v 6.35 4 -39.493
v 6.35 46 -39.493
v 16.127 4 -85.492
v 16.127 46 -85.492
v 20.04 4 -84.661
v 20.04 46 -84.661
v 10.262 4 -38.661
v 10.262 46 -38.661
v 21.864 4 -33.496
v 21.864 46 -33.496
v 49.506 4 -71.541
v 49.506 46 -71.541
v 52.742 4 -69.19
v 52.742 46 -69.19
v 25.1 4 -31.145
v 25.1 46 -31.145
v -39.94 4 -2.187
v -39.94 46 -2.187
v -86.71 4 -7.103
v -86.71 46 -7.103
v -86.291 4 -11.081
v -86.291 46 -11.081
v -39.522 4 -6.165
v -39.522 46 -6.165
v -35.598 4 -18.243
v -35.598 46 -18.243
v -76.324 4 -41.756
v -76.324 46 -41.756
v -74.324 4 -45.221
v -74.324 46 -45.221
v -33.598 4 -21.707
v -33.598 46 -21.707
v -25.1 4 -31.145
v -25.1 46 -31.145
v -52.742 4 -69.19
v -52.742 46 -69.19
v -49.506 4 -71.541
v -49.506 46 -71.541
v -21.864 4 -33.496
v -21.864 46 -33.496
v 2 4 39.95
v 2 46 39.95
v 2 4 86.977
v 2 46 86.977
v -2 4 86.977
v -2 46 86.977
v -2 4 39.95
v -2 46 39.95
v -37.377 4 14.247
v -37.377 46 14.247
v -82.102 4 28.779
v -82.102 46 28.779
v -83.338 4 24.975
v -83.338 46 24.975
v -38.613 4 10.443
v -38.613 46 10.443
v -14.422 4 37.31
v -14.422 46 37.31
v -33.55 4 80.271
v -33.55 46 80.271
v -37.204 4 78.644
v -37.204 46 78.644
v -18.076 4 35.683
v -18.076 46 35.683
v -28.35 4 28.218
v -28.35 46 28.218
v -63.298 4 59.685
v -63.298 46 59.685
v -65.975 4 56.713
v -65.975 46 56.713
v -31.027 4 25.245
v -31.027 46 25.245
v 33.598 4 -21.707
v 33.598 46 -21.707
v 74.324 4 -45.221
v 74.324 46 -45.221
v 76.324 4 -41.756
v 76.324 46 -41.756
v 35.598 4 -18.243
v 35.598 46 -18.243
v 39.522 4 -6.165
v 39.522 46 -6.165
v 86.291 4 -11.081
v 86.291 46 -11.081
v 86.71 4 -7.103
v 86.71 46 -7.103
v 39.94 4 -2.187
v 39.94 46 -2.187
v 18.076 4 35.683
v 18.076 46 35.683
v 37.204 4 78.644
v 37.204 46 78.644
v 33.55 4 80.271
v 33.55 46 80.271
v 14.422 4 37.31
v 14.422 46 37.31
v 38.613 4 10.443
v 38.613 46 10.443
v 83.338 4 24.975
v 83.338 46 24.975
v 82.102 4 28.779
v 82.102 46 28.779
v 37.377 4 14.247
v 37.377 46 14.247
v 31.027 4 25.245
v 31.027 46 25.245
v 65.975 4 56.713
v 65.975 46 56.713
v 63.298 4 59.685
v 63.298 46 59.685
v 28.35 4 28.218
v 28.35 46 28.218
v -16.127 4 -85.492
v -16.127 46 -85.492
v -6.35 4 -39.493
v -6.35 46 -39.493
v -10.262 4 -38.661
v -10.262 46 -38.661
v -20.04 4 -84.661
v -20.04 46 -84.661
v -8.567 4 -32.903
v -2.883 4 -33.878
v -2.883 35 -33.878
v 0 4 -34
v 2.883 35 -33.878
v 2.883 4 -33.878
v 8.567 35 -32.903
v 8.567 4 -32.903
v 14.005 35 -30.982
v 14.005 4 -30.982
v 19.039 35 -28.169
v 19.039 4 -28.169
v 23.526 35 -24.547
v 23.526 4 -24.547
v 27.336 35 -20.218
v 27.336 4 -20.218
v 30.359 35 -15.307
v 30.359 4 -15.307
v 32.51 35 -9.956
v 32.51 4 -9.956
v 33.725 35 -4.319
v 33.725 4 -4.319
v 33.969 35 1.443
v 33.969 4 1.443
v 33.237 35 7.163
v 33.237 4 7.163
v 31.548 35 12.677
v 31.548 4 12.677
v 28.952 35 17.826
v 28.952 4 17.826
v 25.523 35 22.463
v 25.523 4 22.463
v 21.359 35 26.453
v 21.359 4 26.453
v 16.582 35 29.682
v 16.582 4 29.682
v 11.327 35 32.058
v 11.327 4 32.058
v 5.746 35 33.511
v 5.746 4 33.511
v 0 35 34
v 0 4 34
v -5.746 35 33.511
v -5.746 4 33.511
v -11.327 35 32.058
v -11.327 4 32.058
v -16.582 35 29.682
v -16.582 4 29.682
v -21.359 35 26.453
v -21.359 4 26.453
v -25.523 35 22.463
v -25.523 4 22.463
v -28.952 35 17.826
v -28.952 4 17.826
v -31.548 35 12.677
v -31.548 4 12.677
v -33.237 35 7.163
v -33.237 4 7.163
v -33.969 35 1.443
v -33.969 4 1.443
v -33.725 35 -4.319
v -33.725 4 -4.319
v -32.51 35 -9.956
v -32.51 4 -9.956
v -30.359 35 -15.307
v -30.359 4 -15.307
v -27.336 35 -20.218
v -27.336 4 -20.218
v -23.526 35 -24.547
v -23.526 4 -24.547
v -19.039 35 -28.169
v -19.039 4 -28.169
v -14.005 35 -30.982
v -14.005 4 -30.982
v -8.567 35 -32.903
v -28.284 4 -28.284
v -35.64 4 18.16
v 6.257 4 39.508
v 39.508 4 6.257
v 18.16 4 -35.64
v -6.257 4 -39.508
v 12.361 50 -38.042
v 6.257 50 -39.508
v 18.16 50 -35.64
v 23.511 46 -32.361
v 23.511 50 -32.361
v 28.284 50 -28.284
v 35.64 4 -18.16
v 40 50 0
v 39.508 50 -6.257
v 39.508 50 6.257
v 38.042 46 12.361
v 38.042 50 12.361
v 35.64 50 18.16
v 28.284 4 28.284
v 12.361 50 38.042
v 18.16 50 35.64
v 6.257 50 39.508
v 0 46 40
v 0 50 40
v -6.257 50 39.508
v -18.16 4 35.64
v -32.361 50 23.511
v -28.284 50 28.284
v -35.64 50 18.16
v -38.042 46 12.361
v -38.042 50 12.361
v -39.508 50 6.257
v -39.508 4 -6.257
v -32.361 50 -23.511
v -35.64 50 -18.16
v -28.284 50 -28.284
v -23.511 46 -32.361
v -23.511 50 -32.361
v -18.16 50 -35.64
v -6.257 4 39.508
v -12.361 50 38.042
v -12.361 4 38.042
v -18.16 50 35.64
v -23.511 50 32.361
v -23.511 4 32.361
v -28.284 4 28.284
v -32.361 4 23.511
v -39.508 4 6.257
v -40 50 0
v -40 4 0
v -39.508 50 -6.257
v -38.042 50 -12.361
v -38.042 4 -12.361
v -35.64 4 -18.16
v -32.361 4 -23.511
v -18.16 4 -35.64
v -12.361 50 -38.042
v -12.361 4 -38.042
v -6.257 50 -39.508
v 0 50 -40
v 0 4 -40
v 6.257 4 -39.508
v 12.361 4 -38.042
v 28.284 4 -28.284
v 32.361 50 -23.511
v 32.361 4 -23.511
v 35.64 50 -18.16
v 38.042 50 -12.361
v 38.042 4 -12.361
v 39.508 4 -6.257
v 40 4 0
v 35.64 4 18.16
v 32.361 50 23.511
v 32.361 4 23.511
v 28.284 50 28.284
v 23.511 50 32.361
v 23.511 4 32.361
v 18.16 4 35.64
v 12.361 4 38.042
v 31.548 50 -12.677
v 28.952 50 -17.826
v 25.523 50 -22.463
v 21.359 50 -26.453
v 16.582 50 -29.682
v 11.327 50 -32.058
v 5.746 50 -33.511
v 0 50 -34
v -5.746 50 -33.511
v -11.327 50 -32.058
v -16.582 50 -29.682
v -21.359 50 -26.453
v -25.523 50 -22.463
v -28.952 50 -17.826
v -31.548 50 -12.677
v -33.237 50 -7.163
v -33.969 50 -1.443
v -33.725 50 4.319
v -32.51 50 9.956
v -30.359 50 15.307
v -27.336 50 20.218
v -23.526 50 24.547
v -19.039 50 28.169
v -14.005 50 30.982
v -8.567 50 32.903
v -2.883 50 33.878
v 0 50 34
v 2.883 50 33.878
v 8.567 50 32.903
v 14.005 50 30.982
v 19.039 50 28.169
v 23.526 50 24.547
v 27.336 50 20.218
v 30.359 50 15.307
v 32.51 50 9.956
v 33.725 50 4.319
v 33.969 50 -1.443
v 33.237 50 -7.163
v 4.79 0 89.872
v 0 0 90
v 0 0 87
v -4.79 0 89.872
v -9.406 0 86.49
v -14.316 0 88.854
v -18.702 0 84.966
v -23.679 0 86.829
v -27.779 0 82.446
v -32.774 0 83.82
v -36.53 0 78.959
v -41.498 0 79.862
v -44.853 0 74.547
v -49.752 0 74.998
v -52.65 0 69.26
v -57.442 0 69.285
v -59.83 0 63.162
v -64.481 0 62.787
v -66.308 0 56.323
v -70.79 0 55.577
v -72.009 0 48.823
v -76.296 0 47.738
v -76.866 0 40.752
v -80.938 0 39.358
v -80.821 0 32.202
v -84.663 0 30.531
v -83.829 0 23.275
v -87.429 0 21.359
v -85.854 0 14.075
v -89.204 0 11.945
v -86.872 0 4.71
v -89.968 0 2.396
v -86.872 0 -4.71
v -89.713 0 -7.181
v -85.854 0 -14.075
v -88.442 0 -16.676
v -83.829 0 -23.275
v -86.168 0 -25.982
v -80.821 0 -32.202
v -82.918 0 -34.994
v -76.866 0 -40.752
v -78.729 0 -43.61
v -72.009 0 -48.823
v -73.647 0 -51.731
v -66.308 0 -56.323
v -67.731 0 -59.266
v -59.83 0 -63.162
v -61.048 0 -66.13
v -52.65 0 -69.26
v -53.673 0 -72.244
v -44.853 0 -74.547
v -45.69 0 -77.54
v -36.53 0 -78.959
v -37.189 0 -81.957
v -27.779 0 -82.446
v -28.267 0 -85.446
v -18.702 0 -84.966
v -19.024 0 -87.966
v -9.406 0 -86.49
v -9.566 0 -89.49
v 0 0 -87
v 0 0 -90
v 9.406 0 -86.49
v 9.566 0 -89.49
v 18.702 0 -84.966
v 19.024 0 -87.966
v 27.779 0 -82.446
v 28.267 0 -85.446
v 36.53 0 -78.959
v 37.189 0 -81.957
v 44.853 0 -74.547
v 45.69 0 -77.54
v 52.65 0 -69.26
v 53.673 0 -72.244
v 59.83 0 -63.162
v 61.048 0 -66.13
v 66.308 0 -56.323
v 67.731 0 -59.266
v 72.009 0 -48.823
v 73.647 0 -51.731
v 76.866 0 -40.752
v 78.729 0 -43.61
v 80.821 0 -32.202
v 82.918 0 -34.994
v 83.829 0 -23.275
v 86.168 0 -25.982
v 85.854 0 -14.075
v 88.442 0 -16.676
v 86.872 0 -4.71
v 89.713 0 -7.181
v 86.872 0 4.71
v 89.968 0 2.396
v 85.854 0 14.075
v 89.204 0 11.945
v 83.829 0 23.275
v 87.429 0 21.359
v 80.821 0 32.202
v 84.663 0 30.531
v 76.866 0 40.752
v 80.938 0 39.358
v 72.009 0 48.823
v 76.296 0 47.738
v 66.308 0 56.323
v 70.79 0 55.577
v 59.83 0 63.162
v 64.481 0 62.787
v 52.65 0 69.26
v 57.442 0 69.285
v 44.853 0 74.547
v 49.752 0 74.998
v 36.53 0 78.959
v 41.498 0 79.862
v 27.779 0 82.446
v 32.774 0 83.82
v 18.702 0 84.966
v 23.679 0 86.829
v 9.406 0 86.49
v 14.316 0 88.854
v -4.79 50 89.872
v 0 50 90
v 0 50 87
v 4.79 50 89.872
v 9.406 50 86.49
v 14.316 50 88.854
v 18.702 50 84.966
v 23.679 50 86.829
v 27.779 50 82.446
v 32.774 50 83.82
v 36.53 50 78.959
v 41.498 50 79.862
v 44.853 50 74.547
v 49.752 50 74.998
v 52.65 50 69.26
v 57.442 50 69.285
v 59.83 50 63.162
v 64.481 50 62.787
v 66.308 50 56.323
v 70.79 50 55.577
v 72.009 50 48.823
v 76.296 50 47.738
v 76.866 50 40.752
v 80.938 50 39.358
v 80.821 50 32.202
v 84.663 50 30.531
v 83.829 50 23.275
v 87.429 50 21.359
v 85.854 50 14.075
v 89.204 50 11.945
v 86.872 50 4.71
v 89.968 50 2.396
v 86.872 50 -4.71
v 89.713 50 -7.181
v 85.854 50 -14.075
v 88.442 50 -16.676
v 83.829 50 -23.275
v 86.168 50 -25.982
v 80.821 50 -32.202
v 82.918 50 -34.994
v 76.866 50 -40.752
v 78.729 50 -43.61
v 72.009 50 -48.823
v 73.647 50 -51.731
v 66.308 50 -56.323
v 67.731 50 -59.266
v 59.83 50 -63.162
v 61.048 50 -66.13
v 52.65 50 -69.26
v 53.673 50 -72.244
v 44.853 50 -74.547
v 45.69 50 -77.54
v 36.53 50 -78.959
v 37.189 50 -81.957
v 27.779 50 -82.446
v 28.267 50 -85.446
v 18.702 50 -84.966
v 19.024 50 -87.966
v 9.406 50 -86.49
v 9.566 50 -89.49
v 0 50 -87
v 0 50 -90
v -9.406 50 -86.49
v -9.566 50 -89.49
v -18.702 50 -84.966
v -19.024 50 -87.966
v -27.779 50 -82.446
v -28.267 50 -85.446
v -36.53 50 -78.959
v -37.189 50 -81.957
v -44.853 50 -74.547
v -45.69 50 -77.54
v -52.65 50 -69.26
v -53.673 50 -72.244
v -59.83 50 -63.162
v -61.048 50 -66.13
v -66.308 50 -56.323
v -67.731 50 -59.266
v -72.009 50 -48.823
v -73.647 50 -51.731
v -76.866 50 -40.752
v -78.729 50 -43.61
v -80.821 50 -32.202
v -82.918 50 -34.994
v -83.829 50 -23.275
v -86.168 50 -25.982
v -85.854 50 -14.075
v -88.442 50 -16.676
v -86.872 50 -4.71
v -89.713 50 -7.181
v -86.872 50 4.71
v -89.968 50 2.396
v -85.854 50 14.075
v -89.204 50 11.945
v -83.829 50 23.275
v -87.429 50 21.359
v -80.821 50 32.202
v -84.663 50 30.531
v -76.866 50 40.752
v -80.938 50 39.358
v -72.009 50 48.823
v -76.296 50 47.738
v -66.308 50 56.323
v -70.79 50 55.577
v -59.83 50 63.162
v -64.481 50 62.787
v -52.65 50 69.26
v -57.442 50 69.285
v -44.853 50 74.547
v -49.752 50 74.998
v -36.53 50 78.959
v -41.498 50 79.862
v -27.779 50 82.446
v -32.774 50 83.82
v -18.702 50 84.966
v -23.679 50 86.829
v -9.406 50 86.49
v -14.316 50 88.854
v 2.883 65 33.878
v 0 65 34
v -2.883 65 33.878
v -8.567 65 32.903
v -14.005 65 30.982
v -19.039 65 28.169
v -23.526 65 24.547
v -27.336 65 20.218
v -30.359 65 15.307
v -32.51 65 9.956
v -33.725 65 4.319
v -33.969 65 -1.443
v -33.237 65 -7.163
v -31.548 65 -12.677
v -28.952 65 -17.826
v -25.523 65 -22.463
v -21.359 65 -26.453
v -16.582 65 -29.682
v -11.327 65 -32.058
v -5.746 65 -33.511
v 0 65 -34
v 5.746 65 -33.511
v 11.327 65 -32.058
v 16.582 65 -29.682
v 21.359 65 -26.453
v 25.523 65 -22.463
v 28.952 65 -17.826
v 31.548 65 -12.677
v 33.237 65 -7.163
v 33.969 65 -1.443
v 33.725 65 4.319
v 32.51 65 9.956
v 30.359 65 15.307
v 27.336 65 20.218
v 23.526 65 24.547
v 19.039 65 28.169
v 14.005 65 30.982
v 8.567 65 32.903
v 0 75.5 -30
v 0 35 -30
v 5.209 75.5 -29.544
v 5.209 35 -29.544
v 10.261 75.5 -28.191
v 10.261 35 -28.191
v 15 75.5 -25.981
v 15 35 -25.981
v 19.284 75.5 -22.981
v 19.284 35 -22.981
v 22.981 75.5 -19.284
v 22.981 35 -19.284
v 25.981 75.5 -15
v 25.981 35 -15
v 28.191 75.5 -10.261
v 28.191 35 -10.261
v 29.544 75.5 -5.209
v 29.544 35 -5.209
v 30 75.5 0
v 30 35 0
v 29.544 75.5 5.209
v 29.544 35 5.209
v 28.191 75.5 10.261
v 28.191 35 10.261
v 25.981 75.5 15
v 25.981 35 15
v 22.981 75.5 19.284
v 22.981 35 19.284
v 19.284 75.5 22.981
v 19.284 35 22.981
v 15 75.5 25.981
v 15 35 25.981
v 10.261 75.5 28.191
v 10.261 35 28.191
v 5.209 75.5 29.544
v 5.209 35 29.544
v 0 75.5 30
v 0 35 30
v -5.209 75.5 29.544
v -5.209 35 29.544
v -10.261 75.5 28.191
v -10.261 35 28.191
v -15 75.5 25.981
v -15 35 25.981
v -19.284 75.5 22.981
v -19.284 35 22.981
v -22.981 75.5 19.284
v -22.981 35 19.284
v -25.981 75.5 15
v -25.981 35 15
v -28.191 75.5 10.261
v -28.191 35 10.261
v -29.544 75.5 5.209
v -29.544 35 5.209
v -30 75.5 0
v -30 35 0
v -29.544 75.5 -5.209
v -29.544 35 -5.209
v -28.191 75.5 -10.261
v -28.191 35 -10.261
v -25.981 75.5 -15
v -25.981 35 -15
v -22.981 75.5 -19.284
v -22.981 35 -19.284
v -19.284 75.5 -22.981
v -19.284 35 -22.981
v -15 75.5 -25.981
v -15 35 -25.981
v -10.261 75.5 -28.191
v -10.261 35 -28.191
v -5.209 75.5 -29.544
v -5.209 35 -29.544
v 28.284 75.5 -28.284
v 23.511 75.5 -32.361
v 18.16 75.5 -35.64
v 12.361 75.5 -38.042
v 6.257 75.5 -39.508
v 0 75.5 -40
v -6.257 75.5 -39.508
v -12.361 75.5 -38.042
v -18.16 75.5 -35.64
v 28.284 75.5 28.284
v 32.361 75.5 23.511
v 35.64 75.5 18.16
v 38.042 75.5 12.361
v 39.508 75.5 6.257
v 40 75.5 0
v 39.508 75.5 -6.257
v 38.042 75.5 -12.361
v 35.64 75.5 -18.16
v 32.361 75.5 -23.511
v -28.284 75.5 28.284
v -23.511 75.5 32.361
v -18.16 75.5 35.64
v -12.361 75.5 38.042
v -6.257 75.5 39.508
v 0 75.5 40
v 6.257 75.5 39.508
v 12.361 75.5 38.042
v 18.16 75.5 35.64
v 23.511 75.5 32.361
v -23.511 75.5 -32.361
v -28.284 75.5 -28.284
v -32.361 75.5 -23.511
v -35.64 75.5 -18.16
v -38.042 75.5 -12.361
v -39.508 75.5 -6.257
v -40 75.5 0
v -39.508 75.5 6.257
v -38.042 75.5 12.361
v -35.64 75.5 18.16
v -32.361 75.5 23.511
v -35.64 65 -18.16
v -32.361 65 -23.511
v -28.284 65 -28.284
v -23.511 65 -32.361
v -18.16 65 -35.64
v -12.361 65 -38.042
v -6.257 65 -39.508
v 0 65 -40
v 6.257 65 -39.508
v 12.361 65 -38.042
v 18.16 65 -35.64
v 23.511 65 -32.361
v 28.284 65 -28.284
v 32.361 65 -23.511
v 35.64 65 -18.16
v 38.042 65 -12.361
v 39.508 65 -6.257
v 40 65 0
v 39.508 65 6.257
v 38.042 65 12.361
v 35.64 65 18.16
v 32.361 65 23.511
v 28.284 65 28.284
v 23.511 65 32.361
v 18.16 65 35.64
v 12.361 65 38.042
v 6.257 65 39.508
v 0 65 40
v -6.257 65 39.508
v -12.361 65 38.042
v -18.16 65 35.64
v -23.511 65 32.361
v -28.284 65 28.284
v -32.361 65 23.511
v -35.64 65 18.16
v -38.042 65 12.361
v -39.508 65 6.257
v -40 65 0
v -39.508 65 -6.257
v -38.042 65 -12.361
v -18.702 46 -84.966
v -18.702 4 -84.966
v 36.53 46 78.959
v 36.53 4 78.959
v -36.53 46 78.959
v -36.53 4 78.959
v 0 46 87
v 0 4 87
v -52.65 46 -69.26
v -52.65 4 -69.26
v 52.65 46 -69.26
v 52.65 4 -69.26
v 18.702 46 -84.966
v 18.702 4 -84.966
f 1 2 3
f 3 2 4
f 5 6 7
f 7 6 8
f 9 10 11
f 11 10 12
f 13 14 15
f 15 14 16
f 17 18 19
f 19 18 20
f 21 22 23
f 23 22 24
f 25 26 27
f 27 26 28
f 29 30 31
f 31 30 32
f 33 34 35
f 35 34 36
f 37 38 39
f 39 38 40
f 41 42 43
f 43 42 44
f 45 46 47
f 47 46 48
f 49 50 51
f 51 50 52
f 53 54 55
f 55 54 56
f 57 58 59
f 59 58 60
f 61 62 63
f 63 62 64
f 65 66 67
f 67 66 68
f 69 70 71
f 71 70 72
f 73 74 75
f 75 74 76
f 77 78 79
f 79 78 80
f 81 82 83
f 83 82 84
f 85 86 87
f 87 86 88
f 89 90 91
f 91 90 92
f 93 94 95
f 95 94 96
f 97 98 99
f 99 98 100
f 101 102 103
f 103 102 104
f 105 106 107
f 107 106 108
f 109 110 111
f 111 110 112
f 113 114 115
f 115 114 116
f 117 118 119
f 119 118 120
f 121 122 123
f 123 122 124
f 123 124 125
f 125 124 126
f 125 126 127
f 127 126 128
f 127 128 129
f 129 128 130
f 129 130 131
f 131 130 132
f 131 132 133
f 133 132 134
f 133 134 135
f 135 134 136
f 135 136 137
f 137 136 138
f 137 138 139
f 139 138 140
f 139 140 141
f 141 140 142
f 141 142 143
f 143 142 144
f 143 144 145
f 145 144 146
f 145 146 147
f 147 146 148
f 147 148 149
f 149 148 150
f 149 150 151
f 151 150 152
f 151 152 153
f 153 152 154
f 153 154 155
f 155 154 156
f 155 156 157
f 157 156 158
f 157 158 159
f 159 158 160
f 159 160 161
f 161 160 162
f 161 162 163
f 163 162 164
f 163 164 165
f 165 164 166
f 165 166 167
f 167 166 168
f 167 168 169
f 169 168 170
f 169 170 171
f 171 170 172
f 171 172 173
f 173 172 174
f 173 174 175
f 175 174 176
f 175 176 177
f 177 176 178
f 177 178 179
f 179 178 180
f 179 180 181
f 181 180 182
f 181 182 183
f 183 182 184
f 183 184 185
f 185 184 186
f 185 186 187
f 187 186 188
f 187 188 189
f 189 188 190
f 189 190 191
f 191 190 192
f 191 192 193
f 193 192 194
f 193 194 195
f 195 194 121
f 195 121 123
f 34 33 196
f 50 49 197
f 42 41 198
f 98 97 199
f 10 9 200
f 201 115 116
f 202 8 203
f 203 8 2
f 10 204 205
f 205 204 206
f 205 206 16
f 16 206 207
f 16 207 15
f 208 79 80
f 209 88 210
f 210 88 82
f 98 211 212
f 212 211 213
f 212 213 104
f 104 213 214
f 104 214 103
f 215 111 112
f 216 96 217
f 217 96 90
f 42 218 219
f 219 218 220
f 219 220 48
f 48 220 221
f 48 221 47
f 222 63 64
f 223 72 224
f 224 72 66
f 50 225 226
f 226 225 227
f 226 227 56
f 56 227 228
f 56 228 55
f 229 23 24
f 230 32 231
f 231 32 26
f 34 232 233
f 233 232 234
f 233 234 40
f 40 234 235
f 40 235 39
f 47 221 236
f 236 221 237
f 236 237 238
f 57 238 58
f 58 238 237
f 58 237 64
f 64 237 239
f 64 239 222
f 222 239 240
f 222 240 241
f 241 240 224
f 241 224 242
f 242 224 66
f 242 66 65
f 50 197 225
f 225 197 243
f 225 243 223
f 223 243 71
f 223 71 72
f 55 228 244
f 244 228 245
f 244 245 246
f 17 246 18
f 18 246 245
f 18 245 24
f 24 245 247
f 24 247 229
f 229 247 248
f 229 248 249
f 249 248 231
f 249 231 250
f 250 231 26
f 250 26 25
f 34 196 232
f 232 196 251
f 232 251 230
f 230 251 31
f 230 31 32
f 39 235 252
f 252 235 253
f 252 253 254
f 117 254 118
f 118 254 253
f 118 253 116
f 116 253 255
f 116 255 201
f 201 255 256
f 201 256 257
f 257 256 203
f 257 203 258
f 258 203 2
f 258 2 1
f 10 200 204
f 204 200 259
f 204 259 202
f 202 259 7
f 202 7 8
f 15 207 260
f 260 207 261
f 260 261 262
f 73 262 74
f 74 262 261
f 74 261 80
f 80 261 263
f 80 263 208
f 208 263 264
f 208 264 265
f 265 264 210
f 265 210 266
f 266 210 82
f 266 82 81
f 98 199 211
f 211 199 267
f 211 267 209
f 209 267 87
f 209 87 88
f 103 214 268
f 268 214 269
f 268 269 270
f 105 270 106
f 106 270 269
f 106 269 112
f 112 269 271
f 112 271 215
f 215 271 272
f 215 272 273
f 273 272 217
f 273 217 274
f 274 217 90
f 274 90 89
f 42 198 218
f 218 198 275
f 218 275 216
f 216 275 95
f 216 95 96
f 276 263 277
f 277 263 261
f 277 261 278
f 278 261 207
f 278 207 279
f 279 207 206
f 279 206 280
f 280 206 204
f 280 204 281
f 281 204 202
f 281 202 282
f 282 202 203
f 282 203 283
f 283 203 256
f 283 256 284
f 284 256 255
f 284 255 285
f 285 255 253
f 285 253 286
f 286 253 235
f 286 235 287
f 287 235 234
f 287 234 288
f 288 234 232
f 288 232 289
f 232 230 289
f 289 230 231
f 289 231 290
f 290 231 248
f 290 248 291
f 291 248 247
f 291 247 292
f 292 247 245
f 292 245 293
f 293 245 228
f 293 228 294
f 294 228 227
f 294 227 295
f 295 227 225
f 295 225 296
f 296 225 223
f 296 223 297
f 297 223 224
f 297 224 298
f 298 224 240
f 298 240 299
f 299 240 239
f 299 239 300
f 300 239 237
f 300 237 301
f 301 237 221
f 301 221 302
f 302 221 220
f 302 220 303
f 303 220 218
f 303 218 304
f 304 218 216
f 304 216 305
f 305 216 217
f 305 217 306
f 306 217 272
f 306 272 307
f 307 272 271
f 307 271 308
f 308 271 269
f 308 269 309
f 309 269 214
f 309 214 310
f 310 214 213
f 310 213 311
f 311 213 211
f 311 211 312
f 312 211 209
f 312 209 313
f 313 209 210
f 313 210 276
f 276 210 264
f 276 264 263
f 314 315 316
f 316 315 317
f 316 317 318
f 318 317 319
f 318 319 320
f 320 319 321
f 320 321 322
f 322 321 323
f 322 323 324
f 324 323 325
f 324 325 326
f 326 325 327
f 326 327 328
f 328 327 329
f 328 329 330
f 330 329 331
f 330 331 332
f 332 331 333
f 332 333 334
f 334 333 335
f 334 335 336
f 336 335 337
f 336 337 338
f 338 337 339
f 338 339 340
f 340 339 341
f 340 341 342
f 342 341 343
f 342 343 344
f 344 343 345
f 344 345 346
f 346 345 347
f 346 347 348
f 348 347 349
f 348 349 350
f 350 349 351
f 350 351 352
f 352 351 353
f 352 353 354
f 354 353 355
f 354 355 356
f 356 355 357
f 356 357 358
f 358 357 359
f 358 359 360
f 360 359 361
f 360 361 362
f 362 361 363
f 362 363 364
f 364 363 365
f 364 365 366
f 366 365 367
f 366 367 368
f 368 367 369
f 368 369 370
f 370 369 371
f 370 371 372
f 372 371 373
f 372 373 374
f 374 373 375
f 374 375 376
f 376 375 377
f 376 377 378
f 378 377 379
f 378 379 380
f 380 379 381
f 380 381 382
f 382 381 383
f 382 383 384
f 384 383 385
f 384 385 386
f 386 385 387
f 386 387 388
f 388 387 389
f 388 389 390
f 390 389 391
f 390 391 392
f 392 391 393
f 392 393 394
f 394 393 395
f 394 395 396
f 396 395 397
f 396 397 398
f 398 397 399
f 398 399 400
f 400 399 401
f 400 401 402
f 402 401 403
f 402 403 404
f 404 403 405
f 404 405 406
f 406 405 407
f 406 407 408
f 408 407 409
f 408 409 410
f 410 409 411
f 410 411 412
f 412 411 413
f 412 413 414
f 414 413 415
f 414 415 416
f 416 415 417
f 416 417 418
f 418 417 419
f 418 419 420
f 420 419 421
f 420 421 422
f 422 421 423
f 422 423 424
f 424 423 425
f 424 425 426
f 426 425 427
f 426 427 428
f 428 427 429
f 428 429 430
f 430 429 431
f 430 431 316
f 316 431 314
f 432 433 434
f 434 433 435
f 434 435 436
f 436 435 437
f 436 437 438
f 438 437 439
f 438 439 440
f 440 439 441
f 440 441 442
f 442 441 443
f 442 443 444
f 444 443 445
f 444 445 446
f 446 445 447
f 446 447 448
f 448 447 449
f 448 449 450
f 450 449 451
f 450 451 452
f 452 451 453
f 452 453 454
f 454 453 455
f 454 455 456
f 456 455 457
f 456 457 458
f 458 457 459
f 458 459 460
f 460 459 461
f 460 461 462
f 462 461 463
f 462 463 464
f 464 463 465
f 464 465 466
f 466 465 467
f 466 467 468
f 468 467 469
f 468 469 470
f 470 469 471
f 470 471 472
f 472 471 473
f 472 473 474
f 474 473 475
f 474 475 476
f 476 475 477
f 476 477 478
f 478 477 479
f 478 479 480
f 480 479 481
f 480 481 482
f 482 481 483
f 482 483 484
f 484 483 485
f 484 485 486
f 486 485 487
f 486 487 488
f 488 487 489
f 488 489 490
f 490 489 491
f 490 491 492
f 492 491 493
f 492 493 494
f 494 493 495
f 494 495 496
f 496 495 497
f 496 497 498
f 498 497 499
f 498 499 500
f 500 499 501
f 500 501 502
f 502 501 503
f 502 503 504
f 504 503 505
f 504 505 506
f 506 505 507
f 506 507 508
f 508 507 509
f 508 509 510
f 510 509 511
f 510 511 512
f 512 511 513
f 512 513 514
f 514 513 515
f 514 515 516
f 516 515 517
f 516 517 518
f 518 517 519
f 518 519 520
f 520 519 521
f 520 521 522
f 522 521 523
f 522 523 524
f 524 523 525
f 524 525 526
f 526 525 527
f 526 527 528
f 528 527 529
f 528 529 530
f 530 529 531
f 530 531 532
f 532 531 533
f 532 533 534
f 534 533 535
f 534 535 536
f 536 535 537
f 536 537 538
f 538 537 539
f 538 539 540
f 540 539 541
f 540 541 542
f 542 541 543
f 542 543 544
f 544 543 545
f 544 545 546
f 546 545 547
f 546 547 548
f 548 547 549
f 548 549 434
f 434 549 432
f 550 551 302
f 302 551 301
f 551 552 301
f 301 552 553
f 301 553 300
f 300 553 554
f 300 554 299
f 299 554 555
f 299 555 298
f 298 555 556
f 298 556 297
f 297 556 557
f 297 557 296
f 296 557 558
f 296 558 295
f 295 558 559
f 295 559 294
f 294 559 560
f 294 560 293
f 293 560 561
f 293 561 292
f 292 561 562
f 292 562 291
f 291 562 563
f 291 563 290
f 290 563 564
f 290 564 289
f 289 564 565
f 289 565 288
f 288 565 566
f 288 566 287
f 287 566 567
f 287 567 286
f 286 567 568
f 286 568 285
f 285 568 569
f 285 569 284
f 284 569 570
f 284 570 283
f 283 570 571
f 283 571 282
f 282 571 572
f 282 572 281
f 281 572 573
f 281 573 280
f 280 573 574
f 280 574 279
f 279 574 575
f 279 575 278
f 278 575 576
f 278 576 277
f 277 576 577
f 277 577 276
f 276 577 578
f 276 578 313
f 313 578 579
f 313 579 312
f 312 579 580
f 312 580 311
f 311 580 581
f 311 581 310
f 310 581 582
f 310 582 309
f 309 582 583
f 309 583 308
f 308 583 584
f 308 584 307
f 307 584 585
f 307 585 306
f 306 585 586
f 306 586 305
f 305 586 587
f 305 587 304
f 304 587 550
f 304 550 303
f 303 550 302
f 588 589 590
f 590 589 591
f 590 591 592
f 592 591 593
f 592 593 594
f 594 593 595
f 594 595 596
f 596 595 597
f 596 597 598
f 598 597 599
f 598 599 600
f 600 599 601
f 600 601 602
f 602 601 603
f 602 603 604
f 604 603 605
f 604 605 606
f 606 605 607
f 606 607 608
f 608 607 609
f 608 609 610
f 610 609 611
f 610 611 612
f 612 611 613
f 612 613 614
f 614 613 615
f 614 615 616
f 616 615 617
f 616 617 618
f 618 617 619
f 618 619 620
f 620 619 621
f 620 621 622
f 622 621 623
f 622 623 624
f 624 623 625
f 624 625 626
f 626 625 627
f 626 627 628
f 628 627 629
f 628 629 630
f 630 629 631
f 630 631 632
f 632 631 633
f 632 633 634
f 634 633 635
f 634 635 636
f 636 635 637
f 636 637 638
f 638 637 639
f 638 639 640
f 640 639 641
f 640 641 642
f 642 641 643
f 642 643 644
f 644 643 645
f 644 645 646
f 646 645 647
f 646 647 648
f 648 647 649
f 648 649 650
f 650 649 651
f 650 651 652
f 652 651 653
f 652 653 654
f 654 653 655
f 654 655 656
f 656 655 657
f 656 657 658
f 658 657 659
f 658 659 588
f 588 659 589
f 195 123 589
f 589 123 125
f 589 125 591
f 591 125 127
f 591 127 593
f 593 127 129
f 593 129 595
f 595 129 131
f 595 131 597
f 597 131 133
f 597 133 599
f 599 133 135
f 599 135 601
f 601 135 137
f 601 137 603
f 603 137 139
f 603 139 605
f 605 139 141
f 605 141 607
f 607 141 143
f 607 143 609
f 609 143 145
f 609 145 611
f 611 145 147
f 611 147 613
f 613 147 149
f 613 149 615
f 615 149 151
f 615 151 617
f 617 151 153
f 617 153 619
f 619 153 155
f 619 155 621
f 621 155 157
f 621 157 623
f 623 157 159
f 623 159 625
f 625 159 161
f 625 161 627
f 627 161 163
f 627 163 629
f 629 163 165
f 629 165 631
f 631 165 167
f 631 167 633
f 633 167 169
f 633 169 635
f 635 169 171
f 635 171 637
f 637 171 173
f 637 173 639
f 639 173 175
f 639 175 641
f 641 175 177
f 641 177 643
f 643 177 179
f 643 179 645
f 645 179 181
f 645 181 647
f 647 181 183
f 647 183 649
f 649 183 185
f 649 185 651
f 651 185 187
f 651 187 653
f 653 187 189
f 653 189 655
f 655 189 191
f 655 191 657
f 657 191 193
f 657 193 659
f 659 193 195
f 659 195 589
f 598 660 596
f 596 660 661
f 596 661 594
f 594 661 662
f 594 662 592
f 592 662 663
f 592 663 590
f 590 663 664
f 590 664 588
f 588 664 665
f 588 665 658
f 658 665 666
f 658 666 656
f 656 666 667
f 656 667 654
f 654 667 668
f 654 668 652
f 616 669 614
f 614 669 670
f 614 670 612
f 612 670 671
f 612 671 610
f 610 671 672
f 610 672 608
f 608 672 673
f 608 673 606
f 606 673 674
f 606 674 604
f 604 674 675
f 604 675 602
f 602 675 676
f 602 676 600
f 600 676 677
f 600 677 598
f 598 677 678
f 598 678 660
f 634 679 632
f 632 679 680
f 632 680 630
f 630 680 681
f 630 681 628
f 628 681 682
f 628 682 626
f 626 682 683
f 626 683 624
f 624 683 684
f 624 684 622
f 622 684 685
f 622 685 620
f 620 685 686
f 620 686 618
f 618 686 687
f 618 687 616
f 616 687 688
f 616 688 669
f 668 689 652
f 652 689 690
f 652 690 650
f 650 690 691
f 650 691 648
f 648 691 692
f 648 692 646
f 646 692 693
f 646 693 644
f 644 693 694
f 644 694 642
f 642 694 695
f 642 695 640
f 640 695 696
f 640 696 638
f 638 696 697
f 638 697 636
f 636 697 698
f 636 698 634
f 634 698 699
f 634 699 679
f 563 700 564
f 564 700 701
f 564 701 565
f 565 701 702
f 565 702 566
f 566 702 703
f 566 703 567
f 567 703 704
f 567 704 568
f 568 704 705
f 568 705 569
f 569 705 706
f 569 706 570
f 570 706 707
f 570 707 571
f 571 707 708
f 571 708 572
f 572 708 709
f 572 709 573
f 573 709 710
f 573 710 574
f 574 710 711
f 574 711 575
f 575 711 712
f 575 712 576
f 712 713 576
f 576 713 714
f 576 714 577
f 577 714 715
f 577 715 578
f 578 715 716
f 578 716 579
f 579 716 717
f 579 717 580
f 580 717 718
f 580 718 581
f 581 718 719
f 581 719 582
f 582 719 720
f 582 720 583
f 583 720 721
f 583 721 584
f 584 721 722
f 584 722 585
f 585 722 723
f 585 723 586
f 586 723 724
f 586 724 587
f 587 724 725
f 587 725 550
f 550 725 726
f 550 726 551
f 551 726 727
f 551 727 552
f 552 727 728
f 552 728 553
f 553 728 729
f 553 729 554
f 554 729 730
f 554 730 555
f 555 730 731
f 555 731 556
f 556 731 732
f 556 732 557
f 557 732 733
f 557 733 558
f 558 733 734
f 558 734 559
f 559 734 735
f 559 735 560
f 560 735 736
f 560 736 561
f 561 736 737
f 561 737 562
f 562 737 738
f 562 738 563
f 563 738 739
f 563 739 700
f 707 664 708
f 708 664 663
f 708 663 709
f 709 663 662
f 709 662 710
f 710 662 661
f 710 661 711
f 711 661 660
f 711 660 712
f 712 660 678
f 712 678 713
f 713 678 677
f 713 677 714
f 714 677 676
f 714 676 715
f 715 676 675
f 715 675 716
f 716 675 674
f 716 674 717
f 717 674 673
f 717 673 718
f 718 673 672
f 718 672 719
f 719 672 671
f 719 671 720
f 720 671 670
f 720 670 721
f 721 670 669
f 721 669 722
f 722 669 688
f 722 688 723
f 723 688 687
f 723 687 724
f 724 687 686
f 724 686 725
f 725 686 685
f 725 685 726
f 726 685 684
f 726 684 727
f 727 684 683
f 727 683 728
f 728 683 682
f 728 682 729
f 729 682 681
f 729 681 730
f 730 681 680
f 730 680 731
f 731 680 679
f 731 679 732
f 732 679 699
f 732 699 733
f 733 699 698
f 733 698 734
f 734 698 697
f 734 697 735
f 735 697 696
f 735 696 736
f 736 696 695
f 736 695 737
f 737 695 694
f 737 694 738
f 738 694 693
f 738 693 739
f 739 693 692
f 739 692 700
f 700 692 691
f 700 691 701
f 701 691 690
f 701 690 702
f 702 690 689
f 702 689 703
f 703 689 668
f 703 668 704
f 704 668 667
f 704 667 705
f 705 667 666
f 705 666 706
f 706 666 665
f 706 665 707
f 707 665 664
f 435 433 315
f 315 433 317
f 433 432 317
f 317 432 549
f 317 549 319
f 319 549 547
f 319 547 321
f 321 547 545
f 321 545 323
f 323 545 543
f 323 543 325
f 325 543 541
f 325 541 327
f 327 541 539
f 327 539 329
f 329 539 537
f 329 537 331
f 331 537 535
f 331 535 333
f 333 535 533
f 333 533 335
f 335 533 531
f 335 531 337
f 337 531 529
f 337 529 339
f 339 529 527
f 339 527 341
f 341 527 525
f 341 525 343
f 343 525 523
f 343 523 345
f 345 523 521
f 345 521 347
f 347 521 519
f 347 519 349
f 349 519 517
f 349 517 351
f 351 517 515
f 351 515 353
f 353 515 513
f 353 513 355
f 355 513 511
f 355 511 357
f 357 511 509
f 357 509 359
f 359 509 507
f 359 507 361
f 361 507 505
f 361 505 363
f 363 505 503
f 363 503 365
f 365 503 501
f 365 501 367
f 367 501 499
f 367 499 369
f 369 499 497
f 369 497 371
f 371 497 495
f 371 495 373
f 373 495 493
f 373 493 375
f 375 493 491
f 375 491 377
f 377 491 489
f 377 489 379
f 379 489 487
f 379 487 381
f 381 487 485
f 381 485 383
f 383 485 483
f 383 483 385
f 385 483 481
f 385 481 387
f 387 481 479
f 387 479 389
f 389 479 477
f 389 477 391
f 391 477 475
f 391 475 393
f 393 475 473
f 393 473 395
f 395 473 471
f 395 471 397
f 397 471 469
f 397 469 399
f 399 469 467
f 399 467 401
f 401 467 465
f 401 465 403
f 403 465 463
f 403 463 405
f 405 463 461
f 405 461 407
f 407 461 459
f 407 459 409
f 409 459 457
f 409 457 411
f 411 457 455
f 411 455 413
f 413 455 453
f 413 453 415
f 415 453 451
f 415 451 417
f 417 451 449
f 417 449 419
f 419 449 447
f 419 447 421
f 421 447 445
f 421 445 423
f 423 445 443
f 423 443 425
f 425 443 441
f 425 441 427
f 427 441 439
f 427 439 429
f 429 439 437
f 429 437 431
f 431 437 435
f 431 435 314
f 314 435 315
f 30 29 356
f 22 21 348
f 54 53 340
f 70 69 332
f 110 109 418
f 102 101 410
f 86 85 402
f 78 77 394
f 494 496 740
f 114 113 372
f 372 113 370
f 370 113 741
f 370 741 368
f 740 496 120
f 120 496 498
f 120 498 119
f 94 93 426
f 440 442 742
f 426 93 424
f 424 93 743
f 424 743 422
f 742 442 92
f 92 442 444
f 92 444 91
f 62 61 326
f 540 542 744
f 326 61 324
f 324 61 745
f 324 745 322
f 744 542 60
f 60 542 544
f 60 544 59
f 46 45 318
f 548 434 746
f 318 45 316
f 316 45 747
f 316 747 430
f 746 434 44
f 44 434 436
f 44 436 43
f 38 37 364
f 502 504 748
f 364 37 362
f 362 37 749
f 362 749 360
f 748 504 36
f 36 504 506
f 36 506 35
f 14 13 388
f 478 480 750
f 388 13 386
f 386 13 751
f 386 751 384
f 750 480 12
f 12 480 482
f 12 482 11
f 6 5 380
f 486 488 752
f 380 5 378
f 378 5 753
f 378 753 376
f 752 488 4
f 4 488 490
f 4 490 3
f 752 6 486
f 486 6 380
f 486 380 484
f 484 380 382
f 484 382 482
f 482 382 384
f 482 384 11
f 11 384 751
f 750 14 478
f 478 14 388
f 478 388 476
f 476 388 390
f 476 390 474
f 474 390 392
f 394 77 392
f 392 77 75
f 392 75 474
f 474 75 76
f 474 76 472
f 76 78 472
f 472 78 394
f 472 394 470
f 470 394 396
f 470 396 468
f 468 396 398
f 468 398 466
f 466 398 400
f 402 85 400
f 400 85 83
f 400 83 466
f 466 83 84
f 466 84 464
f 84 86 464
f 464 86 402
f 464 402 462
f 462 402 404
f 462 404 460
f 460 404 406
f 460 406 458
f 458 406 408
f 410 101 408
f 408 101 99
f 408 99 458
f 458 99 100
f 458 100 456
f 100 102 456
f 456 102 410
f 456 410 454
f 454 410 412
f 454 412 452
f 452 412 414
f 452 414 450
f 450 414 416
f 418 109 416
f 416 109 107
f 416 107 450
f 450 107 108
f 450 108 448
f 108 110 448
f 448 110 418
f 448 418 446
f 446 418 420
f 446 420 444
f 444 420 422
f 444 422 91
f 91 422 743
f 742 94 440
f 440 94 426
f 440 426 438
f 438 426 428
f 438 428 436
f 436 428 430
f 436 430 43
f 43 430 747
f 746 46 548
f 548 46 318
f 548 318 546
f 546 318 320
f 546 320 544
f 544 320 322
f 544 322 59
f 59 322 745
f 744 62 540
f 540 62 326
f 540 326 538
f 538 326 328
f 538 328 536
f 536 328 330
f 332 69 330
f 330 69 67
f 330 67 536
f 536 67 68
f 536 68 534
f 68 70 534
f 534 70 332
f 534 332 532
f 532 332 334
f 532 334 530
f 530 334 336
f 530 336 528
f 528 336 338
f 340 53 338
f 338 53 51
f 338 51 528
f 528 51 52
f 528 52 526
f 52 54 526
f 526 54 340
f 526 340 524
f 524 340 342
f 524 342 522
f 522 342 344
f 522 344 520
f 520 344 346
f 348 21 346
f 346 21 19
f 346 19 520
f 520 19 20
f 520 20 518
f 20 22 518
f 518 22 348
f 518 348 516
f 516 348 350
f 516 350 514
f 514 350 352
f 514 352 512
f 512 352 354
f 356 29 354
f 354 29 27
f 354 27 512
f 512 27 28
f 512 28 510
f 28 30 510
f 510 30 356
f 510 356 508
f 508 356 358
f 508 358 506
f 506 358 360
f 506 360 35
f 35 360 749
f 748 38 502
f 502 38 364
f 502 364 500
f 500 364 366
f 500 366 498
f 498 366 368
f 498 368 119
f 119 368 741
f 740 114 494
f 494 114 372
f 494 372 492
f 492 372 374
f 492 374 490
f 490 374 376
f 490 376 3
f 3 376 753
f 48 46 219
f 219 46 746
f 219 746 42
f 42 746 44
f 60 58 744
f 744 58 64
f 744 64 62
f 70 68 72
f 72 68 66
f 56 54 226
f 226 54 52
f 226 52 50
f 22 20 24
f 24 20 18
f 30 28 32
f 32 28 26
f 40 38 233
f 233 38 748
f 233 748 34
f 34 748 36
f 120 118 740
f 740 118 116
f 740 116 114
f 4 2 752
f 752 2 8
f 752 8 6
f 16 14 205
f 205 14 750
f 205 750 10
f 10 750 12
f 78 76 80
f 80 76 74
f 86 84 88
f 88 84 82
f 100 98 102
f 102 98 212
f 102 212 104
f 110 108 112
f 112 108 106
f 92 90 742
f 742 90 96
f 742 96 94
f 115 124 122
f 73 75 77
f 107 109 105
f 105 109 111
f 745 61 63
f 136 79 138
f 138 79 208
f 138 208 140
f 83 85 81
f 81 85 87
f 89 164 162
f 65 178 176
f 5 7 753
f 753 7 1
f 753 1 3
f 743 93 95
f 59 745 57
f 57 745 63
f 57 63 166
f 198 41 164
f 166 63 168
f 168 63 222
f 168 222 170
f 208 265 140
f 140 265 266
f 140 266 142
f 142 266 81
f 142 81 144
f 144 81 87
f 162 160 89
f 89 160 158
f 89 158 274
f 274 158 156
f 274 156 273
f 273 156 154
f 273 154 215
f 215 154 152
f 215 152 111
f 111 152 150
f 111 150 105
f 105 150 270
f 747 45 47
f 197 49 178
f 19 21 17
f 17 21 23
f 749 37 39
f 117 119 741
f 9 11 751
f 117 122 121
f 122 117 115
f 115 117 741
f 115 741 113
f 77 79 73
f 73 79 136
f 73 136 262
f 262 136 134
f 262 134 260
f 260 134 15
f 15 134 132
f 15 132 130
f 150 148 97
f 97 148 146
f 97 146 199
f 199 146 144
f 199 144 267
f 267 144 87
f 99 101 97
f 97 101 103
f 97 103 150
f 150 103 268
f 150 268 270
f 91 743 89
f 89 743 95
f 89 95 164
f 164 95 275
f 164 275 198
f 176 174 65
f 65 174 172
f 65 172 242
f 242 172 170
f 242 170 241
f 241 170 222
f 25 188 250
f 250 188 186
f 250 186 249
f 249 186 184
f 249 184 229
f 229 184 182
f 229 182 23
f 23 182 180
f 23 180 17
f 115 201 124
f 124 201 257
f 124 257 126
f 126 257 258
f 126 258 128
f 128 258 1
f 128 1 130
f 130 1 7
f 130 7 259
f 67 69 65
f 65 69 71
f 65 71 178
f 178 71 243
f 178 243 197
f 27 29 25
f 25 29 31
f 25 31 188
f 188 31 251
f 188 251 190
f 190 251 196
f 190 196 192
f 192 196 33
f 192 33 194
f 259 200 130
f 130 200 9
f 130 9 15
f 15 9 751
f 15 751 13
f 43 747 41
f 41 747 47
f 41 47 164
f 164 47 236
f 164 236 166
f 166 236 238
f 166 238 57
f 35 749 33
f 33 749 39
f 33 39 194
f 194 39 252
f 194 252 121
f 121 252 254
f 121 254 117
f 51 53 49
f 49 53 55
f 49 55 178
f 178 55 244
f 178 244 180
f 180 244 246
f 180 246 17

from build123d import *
from build123d.topology import SkipClean

# Parameters (mm, degrees)
SKETCH1_R                = 90
BOSS_EXTRUDE1_DEPTH      = 50
CUT_EXTRUDE1_DEPTH       = 50
SKETCH4_R                = 40
CUT_EXTRUDE2_DEPTH       = 137.546695512
SKETCH5_R                = 40
SKETCH5_R_2              = 34
BOSS_EXTRUDE2_DEPTH      = 50
BOSS_EXTRUDE3_DEPTH      = 15
BOSS_EXTRUDE3_DEPTH_BACK = 15
SKETCH9_R                = 34
SKETCH9_R_2              = 30
SKETCH10_R               = 40
SKETCH10_R_2             = 30
BOSS_EXTRUDE4_DEPTH      = 10.5
SKETCH11_R               = 90
SKETCH11_R_2             = 87
BOSS_EXTRUDE5_DEPTH      = 50
SKETCH12_R               = 87
SKETCH12_R_2             = 40
CUT_EXTRUDE3_DEPTH       = 4
SKETCH13_R               = 87
CUT_EXTRUDE4_DEPTH       = 4


with BuildPart() as part:
    # Sketch1 → Boss-Extrude1 (new body)
    with BuildSketch(Plane(origin=(0, 0, 0), x_dir=(1, 0, 0), z_dir=(0, 1, 0))):
        with Locations(Location((0, 0, 0), (0, 0, 270))):
            Circle(SKETCH1_R)
    extrude(amount=BOSS_EXTRUDE1_DEPTH)

    # Sketch2 → Cut-Extrude1 (cut)
    with BuildSketch(Plane.XZ):
        with BuildLine():
            Line((-2, 9.409260219), (-2, 89.977775034))
            ThreePointArc((-2, 89.977775034), (-18.712052174, 88.033284066), (-34.770167253, 83.012260957))
            Line((-34.770167253, 83.012260957), (-2, 9.409260219))
        make_face()
        with BuildLine():
            ThreePointArc((34.770167253, 83.012260957), (18.712052174, 88.033284066), (2, 89.977775034))
            Line((2, 89.977775034), (2, 9.409260219))
            Line((2, 9.409260219), (34.770167253, 83.012260957))
        make_face()
        with BuildLine():
            Line((-5.654181831, 7.782313647), (-38.424349084, 81.385314385))
            ThreePointArc((-38.424349084, 81.385314385), (-52.900672706, 72.811529494), (-65.528256711, 61.693172818))
            Line((-65.528256711, 61.693172818), (-5.654181831, 7.782313647))
        make_face()
        with BuildLine():
            ThreePointArc((65.528256711, 61.693172818), (52.900672706, 72.811529494), (38.424349084, 81.385314385))
            Line((38.424349084, 81.385314385), (5.654181831, 7.782313647))
            Line((5.654181831, 7.782313647), (65.528256711, 61.693172818))
        make_face()
        with BuildLine():
            Line((-8.330704256, 4.809734345), (-68.204779137, 58.720593516))
            ThreePointArc((-68.204779137, 58.720593516), (-77.942286341, 45), (-84.955915279, 29.706774634))
            Line((-84.955915279, 29.706774634), (-8.330704256, 4.809734345))
        make_face()
        with BuildLine():
            ThreePointArc((84.955915279, 29.706774634), (77.942286341, 45), (68.204779137, 58.720593516))
            Line((68.204779137, 58.720593516), (8.330704256, 4.809734345))
            Line((8.330704256, 4.809734345), (84.955915279, 29.706774634))
        make_face()
        with BuildLine():
            Line((-9.566772234, 1.00550828), (-86.191983256, 25.902548569))
            ThreePointArc((-86.191983256, 25.902548569), (-89.506970583, 9.407561694), (-89.693924294, -7.416194762))
            Line((-89.693924294, -7.416194762), (-9.566772234, 1.00550828))
        make_face()
        with BuildLine():
            ThreePointArc((89.693924294, -7.416194762), (89.506970583, 9.407561694), (86.191983256, 25.902548569))
            Line((86.191983256, 25.902548569), (9.566772234, 1.00550828))
            Line((9.566772234, 1.00550828), (89.693924294, -7.416194762))
        make_face()
        with BuildLine():
            Line((-9.14865838, -2.972579302), (-89.275810441, -11.394282343))
            ThreePointArc((-89.275810441, -11.394282343), (-85.595086467, -27.811529494), (-78.923038955, -43.256836709))
            Line((-78.923038955, -43.256836709), (-9.14865838, -2.972579302))
        make_face()
        with BuildLine():
            Line((89.275810441, -11.394282343), (9.14865838, -2.972579302))
            Line((9.14865838, -2.972579302), (78.923038955, -43.256836709))
            ThreePointArc((78.923038955, -43.256836709), (85.595086467, -27.811529494), (89.275810441, -11.394282343))
        make_face()
        with BuildLine():
            Line((-7.14865838, -6.436680917), (-76.923038955, -46.720938324))
            ThreePointArc((-76.923038955, -46.720938324), (-66.883034293, -60.221754572), (-54.505643188, -71.617978614))
            Line((-54.505643188, -71.617978614), (-7.14865838, -6.436680917))
        make_face()
        with BuildLine():
            Line((76.923038955, -46.720938324), (7.14865838, -6.436680917))
            Line((7.14865838, -6.436680917), (54.505643188, -71.617978614))
            ThreePointArc((54.505643188, -71.617978614), (66.883034293, -60.221754572), (76.923038955, -46.720938324))
        make_face()
        with BuildLine():
            Line((-3.912590403, -8.787821926), (-51.26957521, -73.969119623))
            ThreePointArc((-51.26957521, -73.969119623), (-36.606297877, -82.219091188), (-20.663726545, -87.595721387))
            Line((-20.663726545, -87.595721387), (-3.912590403, -8.787821926))
        make_face()
        with BuildLine():
            Line((51.26957521, -73.969119623), (3.912590403, -8.787821926))
            Line((3.912590403, -8.787821926), (20.663726545, -87.595721387))
            ThreePointArc((20.663726545, -87.595721387), (36.606297877, -82.219091188), (51.26957521, -73.969119623))
        make_face()
        with BuildLine():
            Line((0, -9.619468689), (-16.751136142, -88.42736815))
            ThreePointArc((-16.751136142, -88.42736815), (0, -90), (16.751136142, -88.42736815))
            Line((16.751136142, -88.42736815), (0, -9.619468689))
        make_face()
    extrude(amount=-CUT_EXTRUDE1_DEPTH, mode=Mode.SUBTRACT)

    # Sketch4 → Cut-Extrude2 (cut, through all)
    with BuildSketch(Plane(origin=(0, 50, 0), x_dir=(1, 0, 0), z_dir=(0, 1, 0))):
        Circle(SKETCH4_R)
    extrude(amount=-CUT_EXTRUDE2_DEPTH, mode=Mode.SUBTRACT)


with BuildPart() as cut_extrude2_piece_1:
    # of the separate pieces the step leaves, piece 1, a body of its own (cut_extrude2_pieces)
    add(part.part.solids().sort_by_distance((-84.955915279, 0, 29.706774634))[0])


with BuildPart() as cut_extrude2_piece_2:
    # of the separate pieces the step leaves, piece 2, a body of its own (cut_extrude2_pieces)
    add(part.part.solids().sort_by_distance((-65.528256711, 0, 61.693172818))[0])


with BuildPart() as cut_extrude2_piece_3:
    # of the separate pieces the step leaves, piece 3, a body of its own (cut_extrude2_pieces)
    add(part.part.solids().sort_by_distance((10.262360744, 0, -38.661142662))[0])


with BuildPart() as cut_extrude2_piece_4:
    # of the separate pieces the step leaves, piece 4, a body of its own (cut_extrude2_pieces)
    add(part.part.solids().sort_by_distance((14.422025249, 0, 37.309585735))[0])


with BuildPart() as cut_extrude2_piece_5:
    # of the separate pieces the step leaves, piece 5, a body of its own (cut_extrude2_pieces)
    add(part.part.solids().sort_by_distance((-2, 0, 89.977775034))[0])


with BuildPart() as cut_extrude2_piece_6:
    # of the separate pieces the step leaves, piece 6, a body of its own (cut_extrude2_pieces)
    add(part.part.solids().sort_by_distance((39.940175529, 0, -2.186865046))[0])


with BuildPart() as cut_extrude2_piece_7:
    # of the separate pieces the step leaves, piece 7, a body of its own (cut_extrude2_pieces)
    add(part.part.solids().sort_by_distance((25.100036427, 0, -31.144633107))[0])


with BuildPart() as cut_extrude2_piece_8:
    # of the separate pieces the step leaves, piece 8, a body of its own (cut_extrude2_pieces)
    add(part.part.solids().sort_by_distance((-34.770167253, 0, 83.012260957))[0])


with BuildPart() as cut_extrude2_piece_9:
    # of the separate pieces the step leaves, piece 9, a body of its own (cut_extrude2_pieces)
    add(part.part.solids().sort_by_distance((28.350351313, 0, 28.218036438))[0])


with BuildPart() as cut_extrude2_piece_10:
    # of the separate pieces the step leaves, piece 10, a body of its own (cut_extrude2_pieces)
    add(part.part.solids().sort_by_distance((-20.663726545, 0, -87.595721387))[0])


with BuildPart() as cut_extrude2_piece_11:
    # of the separate pieces the step leaves, piece 11, a body of its own (cut_extrude2_pieces)
    add(part.part.solids().sort_by_distance((-54.505643188, 0, -71.617978614))[0])


with BuildPart() as cut_extrude2_piece_12:
    # of the separate pieces the step leaves, piece 12, a body of its own (cut_extrude2_pieces)
    add(part.part.solids().sort_by_distance((37.37664408, 0, 14.247332289))[0])


with BuildPart() as cut_extrude2_piece_13:
    # of the separate pieces the step leaves, piece 13, a body of its own (cut_extrude2_pieces)
    add(part.part.solids().sort_by_distance((35.597687784, 0, -18.242933548))[0])


with BuildPart() as cut_extrude2_piece_14:
    # of the separate pieces the step leaves, piece 14, a body of its own (cut_extrude2_pieces)
    add(part.part.solids().sort_by_distance((-89.693924294, 0, -7.416194762))[0])


with BuildPart() as cut_extrude2_piece_15:
    # of the separate pieces the step leaves, piece 15, a body of its own (cut_extrude2_pieces)
    add(part.part.solids().sort_by_distance((-78.923038955, 0, -43.256836709))[0])


with BuildPart() as body_16:
    # Sketch5 → Boss-Extrude2 (new body)
    with BuildSketch(Plane(origin=(0, 50, 0), x_dir=(1, 0, 0), z_dir=(0, 1, 0))):
        with Locations(Location((0, 0, 0), (0, 0, 270))):
            Circle(SKETCH5_R)
        with Locations(Location((0, 0, 0), (0, 0, 270))):
            Circle(SKETCH5_R_2, mode=Mode.SUBTRACT)
    extrude(amount=-BOSS_EXTRUDE2_DEPTH)



with BuildPart() as body_17:
    # Sketch9 → Boss-Extrude3 (new, two sides: drawn at the far end of the back side and taken through both)
    with BuildSketch(Plane(origin=(0, 50, 0), x_dir=(1, 0, 0), z_dir=(0, 1, 0)).offset(-BOSS_EXTRUDE3_DEPTH_BACK)):
        with Locations(Location((0, 0, 0), (0, 0, 270))):
            Circle(SKETCH9_R)
        with Locations(Location((0, 0, 0), (0, 0, 270))):
            Circle(SKETCH9_R_2, mode=Mode.SUBTRACT)
    extrude(amount=BOSS_EXTRUDE3_DEPTH + BOSS_EXTRUDE3_DEPTH_BACK)

    # Sketch10 → Boss-Extrude4 (add)
    with BuildSketch(Plane(origin=(0, 65, 0), x_dir=(1, 0, 0), z_dir=(0, 1, 0))):
        with Locations(Location((0, 0, 0), (0, 0, 270))):
            Circle(SKETCH10_R)
        with Locations(Location((0, 0, 0), (0, 0, 270))):
            Circle(SKETCH10_R_2, mode=Mode.SUBTRACT)
    extrude(amount=BOSS_EXTRUDE4_DEPTH)


with BuildPart() as body_16_1:
    add(body_16.part)

    add(body_17.part)  # Boss-Extrude5 merges body 17

    add(cut_extrude2_piece_3.part)  # Boss-Extrude5 merges Cut-Extrude2 piece 3

    add(cut_extrude2_piece_7.part)  # Boss-Extrude5 merges Cut-Extrude2 piece 7

    add(cut_extrude2_piece_14.part)  # Boss-Extrude5 merges Cut-Extrude2 piece 14

    add(cut_extrude2_piece_15.part)  # Boss-Extrude5 merges Cut-Extrude2 piece 15

    add(cut_extrude2_piece_11.part)  # Boss-Extrude5 merges Cut-Extrude2 piece 11

    add(cut_extrude2_piece_5.part)  # Boss-Extrude5 merges Cut-Extrude2 piece 5

    add(cut_extrude2_piece_1.part)  # Boss-Extrude5 merges Cut-Extrude2 piece 1

    add(cut_extrude2_piece_8.part)  # Boss-Extrude5 merges Cut-Extrude2 piece 8

    add(cut_extrude2_piece_2.part)  # Boss-Extrude5 merges Cut-Extrude2 piece 2

    add(cut_extrude2_piece_13.part)  # Boss-Extrude5 merges Cut-Extrude2 piece 13

    add(cut_extrude2_piece_6.part)  # Boss-Extrude5 merges Cut-Extrude2 piece 6

    add(cut_extrude2_piece_4.part)  # Boss-Extrude5 merges Cut-Extrude2 piece 4

    add(cut_extrude2_piece_12.part)  # Boss-Extrude5 merges Cut-Extrude2 piece 12

    add(cut_extrude2_piece_9.part)  # Boss-Extrude5 merges Cut-Extrude2 piece 9

    add(cut_extrude2_piece_10.part)  # Boss-Extrude5 merges Cut-Extrude2 piece 10
    # Sketch11 → Boss-Extrude5 (add)
    with BuildSketch(Plane.XZ):
        with Locations(Location((0, 0, 0), (0, 0, 90))):
            Circle(SKETCH11_R)
        Circle(SKETCH11_R_2, mode=Mode.SUBTRACT)
    extrude(amount=-BOSS_EXTRUDE5_DEPTH)

    # Sketch12 → Cut-Extrude3 (cut)
    with SkipClean():  # the faces are left unmerged after this step: merging them gives an invalid solid
        with BuildSketch(Plane(origin=(0, 50, 0), x_dir=(1, 0, 0), z_dir=(0, 1, 0))):
            with Locations(Location((0, 0, 0), (0, 0, 100.682739604))):
                Circle(SKETCH12_R)
            with Locations(Location((0, 0, 0), (0, 0, 270))):
                Circle(SKETCH12_R_2, mode=Mode.SUBTRACT)
        extrude(amount=-CUT_EXTRUDE3_DEPTH, mode=Mode.SUBTRACT)
    add(body_16_1.part.scale(1), mode=Mode.REPLACE)  # the faces are merged on a copy

    # Sketch13 → Cut-Extrude4 (cut)
    with SkipClean():  # the faces are left unmerged after this step: merging them gives an invalid solid
        with BuildSketch(Plane.XZ):
            with Locations(Location((0, 0, 0), (0, 0, 270))):
                Circle(SKETCH13_R)
        extrude(amount=-CUT_EXTRUDE4_DEPTH, mode=Mode.SUBTRACT)


solid = body_16_1.part
